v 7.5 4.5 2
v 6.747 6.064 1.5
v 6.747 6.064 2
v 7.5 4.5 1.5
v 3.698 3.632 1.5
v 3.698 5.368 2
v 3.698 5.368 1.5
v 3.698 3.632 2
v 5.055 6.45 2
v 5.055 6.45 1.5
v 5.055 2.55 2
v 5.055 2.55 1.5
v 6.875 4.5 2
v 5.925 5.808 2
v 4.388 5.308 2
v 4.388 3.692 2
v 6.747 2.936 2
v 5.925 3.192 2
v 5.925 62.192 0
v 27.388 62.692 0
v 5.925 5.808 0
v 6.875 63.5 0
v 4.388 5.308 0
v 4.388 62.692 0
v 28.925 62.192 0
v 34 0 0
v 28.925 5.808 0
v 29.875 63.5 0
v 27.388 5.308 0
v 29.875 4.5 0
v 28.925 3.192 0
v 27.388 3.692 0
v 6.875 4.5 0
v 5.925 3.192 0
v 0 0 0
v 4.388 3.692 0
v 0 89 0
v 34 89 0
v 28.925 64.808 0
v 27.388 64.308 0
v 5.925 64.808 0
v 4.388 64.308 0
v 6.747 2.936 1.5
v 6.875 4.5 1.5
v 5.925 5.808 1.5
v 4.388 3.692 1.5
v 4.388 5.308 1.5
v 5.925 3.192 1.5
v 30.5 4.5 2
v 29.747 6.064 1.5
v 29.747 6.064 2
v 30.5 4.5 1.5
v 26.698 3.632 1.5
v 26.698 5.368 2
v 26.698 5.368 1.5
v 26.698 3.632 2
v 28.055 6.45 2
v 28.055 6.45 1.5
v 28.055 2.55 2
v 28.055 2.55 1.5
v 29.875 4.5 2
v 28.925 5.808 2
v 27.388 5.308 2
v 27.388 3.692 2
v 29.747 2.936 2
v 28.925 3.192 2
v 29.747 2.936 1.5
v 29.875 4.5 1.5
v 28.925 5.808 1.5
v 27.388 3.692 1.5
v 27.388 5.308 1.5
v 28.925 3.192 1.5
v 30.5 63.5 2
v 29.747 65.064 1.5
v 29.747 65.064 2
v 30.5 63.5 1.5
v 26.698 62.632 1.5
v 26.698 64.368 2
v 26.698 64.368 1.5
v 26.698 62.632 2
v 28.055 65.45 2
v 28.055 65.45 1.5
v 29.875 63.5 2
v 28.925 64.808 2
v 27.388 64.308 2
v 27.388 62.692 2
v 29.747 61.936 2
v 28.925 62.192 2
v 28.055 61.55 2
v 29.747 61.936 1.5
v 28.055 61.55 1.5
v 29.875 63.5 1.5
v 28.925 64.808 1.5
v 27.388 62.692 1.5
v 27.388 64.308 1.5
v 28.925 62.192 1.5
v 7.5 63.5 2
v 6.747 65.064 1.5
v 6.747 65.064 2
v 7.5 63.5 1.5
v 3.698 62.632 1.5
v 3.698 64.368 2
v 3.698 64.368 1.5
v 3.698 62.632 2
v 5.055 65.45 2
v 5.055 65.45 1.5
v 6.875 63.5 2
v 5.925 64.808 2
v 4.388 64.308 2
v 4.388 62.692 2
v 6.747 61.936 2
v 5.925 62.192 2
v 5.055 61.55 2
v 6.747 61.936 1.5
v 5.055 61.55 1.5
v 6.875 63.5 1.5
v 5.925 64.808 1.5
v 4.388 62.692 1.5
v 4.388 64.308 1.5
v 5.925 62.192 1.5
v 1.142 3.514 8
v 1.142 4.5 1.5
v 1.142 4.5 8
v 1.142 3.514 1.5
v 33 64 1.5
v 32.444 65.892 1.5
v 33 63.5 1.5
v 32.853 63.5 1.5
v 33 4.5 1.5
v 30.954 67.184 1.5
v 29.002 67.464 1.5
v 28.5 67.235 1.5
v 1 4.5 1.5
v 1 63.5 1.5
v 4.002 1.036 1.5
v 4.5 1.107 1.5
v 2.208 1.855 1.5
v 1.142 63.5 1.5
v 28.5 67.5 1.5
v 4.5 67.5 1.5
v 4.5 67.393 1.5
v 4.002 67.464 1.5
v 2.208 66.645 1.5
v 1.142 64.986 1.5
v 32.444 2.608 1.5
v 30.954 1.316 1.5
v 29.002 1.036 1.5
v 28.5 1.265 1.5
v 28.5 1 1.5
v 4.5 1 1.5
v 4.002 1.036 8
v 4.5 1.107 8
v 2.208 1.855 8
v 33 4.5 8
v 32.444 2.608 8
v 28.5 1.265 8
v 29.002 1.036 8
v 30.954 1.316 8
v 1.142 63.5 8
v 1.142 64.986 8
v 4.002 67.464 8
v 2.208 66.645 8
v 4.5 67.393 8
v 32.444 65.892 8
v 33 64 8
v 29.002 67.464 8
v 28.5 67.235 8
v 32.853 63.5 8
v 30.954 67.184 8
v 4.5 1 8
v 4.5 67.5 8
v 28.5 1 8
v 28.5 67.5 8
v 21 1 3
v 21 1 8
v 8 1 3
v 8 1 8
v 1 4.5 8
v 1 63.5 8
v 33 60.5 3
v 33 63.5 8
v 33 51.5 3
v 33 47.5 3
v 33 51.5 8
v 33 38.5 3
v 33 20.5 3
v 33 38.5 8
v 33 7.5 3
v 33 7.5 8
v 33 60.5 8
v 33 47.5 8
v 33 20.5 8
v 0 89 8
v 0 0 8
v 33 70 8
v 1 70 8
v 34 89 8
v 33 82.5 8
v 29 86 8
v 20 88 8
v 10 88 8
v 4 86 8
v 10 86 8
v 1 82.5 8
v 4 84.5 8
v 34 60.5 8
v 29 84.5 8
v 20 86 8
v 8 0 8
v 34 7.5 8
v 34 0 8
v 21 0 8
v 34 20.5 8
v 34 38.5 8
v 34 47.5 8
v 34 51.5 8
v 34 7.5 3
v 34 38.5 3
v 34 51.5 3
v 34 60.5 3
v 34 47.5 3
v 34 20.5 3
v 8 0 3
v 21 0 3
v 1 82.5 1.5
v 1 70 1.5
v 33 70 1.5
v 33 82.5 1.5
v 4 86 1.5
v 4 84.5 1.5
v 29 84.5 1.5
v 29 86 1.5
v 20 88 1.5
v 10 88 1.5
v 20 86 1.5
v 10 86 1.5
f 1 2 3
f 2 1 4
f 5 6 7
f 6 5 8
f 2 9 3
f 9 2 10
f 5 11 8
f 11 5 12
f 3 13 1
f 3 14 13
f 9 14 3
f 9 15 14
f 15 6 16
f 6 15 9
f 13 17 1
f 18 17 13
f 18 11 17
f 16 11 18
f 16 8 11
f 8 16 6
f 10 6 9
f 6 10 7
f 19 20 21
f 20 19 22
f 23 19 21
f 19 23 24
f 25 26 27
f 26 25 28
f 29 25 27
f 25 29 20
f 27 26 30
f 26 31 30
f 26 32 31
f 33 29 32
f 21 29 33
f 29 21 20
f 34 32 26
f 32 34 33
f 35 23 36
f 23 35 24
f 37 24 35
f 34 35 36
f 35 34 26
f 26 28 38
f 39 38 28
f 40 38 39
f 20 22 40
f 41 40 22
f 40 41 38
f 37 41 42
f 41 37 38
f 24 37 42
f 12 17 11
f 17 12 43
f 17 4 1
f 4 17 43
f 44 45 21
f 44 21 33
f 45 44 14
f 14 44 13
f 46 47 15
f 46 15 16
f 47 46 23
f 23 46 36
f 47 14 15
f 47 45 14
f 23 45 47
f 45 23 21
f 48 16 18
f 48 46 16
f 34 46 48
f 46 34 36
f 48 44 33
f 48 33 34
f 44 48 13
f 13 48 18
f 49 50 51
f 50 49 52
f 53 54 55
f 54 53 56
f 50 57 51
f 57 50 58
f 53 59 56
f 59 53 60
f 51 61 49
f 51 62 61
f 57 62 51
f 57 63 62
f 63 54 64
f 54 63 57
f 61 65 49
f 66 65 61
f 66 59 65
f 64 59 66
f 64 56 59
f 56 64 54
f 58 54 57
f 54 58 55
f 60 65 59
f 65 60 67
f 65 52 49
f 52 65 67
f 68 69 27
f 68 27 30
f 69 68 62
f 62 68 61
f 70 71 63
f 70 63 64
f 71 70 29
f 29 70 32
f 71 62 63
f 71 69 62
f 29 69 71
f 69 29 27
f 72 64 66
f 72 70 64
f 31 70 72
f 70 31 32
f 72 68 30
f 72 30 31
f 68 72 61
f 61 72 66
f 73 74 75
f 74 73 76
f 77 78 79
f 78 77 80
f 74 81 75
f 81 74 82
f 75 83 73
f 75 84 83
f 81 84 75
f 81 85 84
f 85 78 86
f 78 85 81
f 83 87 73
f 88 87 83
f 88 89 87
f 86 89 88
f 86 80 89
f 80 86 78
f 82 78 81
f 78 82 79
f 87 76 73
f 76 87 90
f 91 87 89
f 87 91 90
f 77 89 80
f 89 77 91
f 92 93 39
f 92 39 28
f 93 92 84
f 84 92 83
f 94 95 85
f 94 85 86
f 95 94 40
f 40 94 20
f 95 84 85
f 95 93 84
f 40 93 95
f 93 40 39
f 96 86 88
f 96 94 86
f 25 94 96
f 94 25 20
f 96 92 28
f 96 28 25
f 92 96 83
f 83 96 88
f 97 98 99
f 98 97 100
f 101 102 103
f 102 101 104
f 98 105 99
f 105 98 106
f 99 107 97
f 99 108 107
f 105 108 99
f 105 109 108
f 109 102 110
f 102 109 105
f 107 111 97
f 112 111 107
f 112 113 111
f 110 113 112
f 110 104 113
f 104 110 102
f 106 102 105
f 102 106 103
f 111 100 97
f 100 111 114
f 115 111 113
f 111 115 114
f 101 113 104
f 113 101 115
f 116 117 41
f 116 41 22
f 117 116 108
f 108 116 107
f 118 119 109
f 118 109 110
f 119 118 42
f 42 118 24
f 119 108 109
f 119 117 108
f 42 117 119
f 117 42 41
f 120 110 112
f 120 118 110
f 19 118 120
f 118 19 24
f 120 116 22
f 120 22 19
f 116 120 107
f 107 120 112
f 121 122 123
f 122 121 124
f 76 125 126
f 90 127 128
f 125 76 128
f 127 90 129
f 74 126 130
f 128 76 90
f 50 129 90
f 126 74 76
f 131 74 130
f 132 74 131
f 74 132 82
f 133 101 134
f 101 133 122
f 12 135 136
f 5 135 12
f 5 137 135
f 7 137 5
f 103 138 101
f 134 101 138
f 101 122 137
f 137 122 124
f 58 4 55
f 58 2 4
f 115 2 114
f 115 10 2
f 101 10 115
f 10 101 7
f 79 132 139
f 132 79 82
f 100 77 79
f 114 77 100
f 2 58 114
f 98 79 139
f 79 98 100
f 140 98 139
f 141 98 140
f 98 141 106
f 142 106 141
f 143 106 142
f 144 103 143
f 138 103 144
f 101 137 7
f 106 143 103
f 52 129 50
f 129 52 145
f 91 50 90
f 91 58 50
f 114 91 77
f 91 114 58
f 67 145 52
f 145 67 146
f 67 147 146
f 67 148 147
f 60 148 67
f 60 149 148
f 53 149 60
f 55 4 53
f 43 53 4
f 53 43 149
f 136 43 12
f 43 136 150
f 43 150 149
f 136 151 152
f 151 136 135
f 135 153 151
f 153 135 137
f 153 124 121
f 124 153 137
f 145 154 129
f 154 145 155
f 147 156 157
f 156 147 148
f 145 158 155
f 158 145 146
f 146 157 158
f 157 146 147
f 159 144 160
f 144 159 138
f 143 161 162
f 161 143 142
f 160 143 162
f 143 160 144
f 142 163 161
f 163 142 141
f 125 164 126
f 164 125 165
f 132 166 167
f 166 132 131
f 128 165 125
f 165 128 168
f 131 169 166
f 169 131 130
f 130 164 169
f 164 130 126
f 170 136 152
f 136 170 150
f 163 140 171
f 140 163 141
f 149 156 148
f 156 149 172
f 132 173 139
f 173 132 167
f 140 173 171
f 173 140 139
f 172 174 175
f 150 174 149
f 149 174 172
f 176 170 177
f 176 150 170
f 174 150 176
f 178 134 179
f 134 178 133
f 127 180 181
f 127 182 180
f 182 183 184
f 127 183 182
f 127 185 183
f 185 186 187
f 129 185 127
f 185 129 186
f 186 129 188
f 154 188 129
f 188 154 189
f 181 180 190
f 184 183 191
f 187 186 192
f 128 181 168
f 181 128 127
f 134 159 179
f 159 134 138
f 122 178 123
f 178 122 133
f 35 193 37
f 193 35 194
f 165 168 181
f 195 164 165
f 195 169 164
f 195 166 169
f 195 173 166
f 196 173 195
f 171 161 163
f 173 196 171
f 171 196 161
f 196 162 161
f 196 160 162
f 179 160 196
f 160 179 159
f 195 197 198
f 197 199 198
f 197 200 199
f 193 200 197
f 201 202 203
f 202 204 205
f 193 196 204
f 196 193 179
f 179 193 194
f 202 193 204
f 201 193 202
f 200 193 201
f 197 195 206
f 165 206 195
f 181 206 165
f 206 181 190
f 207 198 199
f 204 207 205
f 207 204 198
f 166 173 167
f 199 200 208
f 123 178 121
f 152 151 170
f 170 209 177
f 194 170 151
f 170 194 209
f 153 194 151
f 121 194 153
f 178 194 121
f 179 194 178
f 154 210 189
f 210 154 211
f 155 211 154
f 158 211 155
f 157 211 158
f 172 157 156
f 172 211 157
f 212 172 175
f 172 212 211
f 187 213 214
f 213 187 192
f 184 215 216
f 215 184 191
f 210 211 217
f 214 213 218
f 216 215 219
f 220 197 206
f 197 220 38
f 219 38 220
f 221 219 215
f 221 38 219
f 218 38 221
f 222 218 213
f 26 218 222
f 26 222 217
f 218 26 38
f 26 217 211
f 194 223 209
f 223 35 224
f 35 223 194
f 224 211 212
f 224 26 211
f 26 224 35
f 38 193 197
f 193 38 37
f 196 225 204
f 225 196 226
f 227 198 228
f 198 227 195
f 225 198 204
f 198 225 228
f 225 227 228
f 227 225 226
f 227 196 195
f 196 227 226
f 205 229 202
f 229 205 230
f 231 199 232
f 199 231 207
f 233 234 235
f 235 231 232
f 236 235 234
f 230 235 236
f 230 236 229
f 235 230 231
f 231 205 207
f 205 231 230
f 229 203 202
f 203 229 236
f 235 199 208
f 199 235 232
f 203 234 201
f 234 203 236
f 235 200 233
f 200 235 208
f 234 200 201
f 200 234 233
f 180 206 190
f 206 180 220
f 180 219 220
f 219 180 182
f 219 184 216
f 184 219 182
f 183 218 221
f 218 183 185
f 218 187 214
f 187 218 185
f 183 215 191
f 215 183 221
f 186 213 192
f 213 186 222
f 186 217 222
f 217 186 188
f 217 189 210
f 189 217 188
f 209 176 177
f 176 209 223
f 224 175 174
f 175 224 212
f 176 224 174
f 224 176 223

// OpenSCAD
cornerRad = 3.5;
baseThickness = 2;
usbWidth = 9;
powerCenter = 55;
usbCenter = 42;
// Printed with green PLA at 210C 1.03 x 1.025 x 1.025 scaling
hdmiCenter = 13;
hdmiWidth = 13;
sdWidth = 13;
sdCenter = 17;
slotHeight = 3;
height = 8;
width=34;
union() {
    difference() {
        translate([5.5,4.5,0]) cylinder(2,2,2); // Lower left
        translate([5.5,4.5,0]) screwhole();
    }
    difference() {
        translate([28.5,4.5,0]) cylinder(2,2,2); // Lower right
        translate([28.5,4.5,0]) screwhole(); // Lower right
    }
    difference() {
        translate([28.5,63.5,0]) cylinder(2,2,2); // Upper right
        translate([28.5,63.5,0]) screwhole(); // Upper right
    }
    difference() {
        translate([5.5,63.5,0]) cylinder(2,2,2); // Upper left    
        translate([5.5,63.5,0]) screwhole(); // Upper left
    }
    difference() {
        difference() {
            cube([width,89,height]);
            translate([1,1,1.5]) rpiOutline(height);
            translate([1,70,1.5]) cube([width-2,12.5,height]);
            translate([4,84.5,1.5]) cube([25,1.5,height]);
            translate([10,86,1.5]) cube([10,2,height]);
        }
        translate([5.5,4.5,0]) screwhole(); // Lower left
        translate([28.5,4.5,0]) screwhole(); // Lower right
        translate([28.5,63.5,0]) screwhole(); // Upper right
        translate([5.5,63.5,0]) screwhole(); // Upper left
        translate([0,1,0]) {
            translate([30,powerCenter-(usbWidth/2),slotHeight]) cube([4,usbWidth,height]);
            translate([30,usbCenter-(usbWidth/2),slotHeight]) cube([4,usbWidth,height]);
            translate([30,hdmiCenter-(hdmiWidth/2),slotHeight]) cube([4,hdmiWidth,height]);    
        }
        translate([1,0,0]) {
            translate([7,0,slotHeight]) cube([sdWidth,2,height]); // SD Slot
        }
    }
    
}

module rpiOutline(thick) {
    union() {
        translate([3.5,3.5,0]) corner(thick); // Lower Left
        translate([28.5,3.5,0]) corner(thick); // Lower Right
        translate([3.5,63,0]) corner(thick); //Upper Left
        translate([28.5,63,0]) corner(thick); // Upper Right
        translate([3.5,0,0]) cube([24,66.5,thick]); // Top and Bottom
        translate([0,3.5,0]) cube([32,59,thick]); // Sides
    }
}

module screwhole () {
        cylinder(4,1.375,1.375);
}
module corner (thick) {
    cylinder(thick,cornerRad,cornerRad);
}
